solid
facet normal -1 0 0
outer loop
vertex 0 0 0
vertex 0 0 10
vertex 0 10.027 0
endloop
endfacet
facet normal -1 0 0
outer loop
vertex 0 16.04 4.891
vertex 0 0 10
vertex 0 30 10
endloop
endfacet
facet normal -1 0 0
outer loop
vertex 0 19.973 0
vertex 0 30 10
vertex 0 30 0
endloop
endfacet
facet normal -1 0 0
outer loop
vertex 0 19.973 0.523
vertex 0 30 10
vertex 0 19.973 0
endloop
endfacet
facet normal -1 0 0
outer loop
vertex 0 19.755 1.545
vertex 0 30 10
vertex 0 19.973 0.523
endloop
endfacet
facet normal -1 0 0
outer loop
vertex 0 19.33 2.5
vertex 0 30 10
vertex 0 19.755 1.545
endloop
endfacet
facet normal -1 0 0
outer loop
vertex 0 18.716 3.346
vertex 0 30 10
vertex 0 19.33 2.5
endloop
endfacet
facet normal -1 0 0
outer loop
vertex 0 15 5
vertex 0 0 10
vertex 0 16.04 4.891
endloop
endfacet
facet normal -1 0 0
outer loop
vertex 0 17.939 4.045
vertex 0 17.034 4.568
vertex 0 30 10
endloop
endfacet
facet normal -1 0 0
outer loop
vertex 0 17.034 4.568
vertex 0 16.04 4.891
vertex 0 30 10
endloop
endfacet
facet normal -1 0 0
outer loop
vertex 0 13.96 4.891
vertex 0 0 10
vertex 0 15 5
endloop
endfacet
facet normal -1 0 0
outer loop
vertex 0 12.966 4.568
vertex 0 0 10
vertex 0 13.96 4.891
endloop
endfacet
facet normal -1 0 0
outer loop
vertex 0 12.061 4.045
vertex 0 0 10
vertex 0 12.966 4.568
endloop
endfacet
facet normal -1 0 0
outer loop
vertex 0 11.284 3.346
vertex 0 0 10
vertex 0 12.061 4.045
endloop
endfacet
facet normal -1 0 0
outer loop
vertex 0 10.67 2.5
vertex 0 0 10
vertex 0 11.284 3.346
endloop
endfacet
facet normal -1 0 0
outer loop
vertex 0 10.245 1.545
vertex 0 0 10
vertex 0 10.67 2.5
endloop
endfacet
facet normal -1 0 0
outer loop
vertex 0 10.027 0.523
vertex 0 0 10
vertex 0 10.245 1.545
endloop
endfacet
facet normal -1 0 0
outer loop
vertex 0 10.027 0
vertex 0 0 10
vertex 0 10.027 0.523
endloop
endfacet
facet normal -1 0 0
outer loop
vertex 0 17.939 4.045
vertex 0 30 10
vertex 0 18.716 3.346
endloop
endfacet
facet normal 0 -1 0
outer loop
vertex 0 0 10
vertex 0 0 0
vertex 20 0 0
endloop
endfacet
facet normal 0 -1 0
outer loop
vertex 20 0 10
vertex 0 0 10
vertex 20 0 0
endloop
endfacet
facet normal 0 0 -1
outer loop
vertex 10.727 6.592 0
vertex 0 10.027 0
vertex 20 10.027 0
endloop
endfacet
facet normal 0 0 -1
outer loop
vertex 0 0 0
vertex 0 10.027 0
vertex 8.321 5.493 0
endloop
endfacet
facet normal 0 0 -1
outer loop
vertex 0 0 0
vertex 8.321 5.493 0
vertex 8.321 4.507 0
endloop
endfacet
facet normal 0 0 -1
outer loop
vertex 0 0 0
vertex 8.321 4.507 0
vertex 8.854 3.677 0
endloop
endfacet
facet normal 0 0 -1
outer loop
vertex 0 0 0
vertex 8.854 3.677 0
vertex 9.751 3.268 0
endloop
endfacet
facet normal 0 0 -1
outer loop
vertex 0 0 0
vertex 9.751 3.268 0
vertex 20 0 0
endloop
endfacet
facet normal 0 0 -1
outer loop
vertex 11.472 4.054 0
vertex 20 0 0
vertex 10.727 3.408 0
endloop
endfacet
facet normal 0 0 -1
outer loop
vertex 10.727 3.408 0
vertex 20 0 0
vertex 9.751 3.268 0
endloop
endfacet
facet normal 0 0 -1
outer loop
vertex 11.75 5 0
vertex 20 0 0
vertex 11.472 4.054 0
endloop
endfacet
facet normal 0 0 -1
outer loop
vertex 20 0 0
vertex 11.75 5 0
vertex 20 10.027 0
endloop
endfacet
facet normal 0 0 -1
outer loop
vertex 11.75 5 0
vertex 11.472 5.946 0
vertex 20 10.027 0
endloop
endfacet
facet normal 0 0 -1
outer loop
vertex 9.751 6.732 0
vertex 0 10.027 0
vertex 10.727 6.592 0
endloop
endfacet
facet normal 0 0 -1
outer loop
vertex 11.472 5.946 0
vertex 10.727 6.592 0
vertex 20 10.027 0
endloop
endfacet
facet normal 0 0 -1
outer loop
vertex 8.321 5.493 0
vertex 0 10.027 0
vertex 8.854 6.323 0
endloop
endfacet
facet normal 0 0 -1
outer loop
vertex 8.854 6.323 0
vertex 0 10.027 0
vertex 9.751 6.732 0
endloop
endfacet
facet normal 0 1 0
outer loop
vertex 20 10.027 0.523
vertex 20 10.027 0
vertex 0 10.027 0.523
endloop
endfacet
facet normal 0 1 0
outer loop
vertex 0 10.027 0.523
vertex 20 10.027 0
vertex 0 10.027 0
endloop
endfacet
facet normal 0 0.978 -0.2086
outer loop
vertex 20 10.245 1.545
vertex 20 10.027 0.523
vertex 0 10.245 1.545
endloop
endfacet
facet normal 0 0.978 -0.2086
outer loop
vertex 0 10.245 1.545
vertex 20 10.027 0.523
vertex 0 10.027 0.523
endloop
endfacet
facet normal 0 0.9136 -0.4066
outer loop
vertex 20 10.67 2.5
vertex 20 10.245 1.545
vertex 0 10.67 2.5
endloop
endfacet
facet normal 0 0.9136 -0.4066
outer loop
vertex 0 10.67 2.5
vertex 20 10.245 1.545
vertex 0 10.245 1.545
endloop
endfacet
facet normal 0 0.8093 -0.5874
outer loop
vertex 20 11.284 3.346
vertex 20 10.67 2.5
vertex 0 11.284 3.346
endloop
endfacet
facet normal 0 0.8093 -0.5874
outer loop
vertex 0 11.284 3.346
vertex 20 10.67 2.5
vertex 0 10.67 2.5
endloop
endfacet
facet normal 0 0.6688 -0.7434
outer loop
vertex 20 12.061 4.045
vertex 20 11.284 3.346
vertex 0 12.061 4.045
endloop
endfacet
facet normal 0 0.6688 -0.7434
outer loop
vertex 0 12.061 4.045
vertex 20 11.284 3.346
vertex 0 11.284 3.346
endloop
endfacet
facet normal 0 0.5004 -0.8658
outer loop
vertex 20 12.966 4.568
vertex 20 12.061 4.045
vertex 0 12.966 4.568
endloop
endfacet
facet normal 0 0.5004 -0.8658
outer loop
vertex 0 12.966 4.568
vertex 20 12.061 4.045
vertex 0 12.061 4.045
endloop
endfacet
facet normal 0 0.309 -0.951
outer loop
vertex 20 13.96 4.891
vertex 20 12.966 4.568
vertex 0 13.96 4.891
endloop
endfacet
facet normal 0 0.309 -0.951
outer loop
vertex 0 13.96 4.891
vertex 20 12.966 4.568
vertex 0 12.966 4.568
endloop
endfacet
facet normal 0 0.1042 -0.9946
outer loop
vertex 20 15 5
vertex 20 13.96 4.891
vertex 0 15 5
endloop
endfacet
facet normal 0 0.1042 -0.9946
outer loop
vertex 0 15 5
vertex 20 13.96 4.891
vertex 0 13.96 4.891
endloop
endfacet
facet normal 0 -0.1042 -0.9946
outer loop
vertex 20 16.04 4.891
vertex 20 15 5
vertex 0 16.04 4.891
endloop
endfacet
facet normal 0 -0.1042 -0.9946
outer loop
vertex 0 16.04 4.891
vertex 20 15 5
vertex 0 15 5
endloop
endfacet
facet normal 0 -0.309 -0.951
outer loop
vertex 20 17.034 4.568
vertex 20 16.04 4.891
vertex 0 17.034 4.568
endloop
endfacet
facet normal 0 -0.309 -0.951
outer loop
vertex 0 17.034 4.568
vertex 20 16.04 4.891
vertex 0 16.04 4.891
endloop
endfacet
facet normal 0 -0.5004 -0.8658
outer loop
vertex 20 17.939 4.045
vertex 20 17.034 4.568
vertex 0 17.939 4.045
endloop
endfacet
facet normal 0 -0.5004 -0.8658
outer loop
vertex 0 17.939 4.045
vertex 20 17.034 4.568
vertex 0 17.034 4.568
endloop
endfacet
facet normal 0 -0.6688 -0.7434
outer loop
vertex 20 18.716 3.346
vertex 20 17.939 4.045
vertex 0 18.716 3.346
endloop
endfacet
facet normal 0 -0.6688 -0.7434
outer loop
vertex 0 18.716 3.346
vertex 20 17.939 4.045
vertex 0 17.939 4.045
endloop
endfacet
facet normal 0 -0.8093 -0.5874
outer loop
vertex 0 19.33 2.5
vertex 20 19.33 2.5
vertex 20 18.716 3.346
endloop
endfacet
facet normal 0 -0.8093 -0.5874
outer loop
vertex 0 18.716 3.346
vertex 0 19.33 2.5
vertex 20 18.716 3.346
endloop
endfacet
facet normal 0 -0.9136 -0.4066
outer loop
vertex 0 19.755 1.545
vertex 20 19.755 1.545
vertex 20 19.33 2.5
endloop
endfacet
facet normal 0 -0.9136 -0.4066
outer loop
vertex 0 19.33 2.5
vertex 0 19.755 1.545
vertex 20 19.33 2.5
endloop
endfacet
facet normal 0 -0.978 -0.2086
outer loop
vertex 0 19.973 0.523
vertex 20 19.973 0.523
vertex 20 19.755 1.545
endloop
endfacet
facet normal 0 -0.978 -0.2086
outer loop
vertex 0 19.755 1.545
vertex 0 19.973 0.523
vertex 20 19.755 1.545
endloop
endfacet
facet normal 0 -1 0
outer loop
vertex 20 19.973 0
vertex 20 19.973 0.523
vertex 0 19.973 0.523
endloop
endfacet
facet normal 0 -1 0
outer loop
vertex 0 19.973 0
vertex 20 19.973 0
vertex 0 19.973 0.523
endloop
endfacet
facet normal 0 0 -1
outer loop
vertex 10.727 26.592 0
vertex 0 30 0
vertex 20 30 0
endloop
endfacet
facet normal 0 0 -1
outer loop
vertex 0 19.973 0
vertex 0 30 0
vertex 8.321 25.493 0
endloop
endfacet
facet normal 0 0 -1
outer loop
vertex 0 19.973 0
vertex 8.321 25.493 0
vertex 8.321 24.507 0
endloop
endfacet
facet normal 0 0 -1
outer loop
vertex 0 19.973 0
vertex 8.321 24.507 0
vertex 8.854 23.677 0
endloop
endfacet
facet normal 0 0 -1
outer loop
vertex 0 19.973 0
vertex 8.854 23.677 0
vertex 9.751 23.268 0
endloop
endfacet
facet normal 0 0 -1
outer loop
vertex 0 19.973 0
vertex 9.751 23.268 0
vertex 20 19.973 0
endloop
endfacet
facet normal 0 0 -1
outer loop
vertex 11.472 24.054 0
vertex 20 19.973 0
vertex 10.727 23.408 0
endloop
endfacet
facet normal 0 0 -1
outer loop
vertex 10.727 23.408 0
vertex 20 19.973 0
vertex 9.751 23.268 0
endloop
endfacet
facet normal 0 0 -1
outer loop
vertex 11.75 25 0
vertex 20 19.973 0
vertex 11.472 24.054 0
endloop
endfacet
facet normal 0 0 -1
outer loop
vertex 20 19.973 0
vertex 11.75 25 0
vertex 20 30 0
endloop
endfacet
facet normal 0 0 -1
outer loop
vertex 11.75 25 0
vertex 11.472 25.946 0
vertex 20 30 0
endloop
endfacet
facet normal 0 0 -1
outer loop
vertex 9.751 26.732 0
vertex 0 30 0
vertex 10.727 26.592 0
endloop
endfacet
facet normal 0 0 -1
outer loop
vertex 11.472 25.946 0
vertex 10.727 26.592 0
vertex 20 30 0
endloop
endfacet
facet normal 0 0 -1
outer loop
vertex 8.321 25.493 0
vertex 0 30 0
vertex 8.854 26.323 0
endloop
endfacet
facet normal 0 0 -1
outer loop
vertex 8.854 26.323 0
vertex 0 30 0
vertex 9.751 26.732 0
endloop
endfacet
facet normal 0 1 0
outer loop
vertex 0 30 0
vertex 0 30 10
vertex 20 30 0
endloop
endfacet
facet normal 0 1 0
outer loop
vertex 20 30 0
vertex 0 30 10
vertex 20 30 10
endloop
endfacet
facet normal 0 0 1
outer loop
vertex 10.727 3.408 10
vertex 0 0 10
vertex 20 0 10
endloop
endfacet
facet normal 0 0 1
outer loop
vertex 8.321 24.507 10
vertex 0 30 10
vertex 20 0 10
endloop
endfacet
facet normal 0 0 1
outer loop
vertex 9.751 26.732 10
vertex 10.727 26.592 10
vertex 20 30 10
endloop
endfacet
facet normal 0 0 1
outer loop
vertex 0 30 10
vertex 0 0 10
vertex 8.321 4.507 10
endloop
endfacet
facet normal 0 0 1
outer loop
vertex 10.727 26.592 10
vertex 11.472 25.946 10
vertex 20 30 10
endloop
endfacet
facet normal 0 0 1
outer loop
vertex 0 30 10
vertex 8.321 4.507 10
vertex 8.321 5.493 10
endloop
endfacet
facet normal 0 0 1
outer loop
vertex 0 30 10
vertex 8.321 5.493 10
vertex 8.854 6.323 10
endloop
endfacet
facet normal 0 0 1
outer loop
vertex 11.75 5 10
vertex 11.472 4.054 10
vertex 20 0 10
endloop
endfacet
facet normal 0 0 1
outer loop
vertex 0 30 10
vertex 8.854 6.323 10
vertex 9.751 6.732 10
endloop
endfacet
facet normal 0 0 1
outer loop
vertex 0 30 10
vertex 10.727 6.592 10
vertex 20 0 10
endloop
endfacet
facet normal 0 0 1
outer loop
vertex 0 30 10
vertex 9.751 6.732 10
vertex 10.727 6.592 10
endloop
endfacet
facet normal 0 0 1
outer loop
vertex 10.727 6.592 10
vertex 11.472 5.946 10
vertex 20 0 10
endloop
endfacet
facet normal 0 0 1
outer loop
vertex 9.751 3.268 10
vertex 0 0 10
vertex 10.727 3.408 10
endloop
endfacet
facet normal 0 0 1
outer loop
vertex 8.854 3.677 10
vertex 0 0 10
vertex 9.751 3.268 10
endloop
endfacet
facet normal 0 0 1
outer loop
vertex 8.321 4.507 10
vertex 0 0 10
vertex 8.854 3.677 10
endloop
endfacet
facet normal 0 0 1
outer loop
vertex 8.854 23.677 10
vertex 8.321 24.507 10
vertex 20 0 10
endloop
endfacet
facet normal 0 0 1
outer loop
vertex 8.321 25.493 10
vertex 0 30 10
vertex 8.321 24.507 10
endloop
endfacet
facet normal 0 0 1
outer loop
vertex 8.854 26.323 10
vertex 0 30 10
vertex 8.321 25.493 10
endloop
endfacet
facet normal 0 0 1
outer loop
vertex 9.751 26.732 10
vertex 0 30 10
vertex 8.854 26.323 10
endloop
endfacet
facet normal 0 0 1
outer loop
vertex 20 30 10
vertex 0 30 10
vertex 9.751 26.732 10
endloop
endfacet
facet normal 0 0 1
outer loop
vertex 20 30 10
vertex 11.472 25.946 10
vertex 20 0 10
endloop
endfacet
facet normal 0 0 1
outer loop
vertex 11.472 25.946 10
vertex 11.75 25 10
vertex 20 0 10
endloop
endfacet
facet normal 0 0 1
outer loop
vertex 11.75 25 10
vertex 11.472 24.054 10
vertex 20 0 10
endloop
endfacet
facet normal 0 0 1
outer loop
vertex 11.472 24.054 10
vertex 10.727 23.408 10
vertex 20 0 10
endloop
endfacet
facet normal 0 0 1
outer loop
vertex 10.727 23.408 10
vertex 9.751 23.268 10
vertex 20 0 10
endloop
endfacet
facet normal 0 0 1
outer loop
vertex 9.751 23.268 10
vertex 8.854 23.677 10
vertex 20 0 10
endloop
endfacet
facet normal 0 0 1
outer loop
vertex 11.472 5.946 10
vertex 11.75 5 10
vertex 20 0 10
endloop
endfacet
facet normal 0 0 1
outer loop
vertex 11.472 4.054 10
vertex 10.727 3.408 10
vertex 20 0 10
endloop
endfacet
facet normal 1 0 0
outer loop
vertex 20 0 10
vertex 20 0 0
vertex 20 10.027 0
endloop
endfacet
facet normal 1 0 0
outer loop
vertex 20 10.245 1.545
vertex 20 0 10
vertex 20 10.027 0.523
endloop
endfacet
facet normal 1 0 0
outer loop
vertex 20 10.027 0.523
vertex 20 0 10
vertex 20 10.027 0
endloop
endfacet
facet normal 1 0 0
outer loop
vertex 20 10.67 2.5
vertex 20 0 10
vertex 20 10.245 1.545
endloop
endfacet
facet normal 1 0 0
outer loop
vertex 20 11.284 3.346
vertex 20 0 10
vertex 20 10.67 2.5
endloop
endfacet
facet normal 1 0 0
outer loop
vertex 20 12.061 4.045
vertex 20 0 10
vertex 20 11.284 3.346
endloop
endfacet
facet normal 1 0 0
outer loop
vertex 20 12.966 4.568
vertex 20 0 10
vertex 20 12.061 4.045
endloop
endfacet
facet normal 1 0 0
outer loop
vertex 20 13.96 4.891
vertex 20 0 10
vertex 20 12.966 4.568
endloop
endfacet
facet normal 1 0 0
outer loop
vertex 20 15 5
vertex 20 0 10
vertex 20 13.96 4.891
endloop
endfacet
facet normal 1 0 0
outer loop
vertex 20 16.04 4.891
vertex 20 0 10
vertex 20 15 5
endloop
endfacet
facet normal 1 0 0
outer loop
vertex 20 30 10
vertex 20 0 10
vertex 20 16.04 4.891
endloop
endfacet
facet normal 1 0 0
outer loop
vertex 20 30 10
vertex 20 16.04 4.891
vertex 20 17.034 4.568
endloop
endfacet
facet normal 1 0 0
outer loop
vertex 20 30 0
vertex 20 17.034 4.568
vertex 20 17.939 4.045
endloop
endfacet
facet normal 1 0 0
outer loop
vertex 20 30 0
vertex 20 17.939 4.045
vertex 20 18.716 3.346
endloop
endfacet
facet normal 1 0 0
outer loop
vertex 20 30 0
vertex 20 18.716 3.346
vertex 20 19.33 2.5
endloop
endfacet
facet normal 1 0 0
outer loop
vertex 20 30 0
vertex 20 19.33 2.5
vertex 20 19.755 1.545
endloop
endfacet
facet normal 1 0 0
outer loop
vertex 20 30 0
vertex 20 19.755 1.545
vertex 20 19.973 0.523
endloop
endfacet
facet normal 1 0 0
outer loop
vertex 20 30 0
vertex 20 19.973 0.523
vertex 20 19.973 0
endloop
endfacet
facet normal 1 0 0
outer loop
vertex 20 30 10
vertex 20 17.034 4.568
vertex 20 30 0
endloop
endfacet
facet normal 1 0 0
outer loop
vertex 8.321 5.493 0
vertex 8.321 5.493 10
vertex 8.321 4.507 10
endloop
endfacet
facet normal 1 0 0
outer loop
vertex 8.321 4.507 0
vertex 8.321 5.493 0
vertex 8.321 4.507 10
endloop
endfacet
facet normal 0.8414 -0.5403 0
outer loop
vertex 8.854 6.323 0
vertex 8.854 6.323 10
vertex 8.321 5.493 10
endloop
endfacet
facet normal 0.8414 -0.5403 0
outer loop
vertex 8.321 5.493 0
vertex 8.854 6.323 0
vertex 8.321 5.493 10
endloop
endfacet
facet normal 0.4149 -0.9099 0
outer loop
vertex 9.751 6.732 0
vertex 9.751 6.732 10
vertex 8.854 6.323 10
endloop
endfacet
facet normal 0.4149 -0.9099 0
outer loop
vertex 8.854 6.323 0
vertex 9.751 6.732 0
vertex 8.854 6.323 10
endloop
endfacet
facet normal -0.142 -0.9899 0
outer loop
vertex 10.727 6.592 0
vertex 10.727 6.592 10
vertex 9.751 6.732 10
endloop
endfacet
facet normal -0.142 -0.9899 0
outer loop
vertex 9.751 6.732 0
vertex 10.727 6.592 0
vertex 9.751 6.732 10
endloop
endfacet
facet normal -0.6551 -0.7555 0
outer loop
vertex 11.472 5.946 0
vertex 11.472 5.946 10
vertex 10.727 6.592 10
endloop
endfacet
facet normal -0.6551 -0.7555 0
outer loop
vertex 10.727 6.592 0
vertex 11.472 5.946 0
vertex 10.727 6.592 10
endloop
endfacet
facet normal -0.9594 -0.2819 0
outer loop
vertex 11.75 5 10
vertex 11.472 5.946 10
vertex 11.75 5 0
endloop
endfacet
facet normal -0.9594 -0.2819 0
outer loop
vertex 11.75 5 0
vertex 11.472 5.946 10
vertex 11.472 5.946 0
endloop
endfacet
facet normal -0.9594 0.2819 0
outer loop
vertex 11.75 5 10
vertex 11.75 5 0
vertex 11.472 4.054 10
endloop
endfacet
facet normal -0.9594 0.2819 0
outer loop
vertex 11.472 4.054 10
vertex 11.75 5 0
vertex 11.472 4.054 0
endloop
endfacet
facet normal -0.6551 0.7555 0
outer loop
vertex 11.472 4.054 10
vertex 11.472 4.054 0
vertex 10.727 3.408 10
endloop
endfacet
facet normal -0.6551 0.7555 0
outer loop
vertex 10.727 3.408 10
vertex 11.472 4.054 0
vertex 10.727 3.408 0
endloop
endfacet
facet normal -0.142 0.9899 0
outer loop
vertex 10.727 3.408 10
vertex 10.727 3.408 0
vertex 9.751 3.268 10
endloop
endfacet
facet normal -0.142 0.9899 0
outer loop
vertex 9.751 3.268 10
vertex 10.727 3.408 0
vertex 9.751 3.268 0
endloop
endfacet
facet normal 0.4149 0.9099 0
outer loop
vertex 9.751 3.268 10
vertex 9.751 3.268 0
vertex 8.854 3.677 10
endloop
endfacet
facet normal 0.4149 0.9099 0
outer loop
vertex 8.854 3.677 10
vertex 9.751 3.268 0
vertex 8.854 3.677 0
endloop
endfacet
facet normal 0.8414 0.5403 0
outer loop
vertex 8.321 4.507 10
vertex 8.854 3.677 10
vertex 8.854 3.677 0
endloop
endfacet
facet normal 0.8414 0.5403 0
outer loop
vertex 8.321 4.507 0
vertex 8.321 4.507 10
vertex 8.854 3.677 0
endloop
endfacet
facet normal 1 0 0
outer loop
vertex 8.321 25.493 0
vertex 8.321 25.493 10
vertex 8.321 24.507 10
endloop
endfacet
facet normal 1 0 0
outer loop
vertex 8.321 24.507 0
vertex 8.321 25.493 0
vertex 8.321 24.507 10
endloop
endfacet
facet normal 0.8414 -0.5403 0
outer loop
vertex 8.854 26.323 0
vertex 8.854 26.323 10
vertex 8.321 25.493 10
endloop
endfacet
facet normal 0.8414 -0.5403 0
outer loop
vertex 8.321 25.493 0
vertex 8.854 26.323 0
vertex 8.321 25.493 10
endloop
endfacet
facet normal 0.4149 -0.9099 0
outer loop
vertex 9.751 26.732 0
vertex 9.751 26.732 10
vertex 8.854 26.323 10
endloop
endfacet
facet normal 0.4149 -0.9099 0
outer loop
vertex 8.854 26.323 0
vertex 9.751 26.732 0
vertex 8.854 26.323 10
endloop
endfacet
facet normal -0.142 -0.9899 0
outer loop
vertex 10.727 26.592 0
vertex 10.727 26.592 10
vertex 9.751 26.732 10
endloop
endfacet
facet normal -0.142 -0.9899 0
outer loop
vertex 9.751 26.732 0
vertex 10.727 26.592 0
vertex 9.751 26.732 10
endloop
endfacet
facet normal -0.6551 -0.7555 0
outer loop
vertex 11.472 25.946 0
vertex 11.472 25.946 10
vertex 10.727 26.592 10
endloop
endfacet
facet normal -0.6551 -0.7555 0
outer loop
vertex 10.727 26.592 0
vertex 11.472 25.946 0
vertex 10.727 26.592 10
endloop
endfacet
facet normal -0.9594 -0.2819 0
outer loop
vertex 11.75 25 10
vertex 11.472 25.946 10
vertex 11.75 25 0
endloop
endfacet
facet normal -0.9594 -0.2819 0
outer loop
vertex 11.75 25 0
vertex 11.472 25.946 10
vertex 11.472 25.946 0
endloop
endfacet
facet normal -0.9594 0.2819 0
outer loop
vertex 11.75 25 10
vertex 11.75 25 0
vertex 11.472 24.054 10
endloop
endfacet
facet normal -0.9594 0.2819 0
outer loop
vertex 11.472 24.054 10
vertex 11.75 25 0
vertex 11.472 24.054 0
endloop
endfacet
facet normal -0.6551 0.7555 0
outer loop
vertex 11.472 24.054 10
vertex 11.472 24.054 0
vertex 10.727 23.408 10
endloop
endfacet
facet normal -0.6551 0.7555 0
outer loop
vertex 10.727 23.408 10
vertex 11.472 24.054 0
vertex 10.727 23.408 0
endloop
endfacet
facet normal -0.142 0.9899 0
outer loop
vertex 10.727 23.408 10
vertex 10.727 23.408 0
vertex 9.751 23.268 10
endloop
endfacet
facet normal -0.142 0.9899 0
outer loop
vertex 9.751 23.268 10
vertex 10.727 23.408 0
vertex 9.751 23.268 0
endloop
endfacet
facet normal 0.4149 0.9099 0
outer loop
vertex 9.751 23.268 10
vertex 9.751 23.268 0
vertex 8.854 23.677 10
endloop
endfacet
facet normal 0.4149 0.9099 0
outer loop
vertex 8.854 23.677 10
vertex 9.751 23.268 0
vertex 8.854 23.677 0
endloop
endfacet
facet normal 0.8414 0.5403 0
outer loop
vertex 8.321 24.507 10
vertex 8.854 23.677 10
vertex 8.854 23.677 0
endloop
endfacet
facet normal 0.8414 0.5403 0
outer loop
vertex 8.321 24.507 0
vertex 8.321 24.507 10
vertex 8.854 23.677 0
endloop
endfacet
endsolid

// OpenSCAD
barwidth = 20;
width_ridge=4;
widthNema17=43;
nema17holeOffset =6;
nema17innerHole=25/2;
nema17Shaft=8/2;
motorThickNess=5;
offsetx =9;
offsety  =9;
barpositionz=30;
rodwidth =8;
nutwidth=14;

height = 30;
width = barwidth;

thickness=10;
spacing_bars = 50;
largeCircle = 70.0;
holeSize=5.5;

holes = [
	[width/2,5,3.5],
	[width/2,height-5,3.5],
];



difference() {
union() {

cube([width,height,thickness],false);


}



	for(i = holes) {
		translate([ i[0],i[1],0])
			cylinder(h=100,r=i[2]/2, center = false, $fs=1);
	}
rotate([0,90,0])
translate([0,height/2,-10])
	cylinder(h=100,r=5, center = false, $fs=1);
}	
